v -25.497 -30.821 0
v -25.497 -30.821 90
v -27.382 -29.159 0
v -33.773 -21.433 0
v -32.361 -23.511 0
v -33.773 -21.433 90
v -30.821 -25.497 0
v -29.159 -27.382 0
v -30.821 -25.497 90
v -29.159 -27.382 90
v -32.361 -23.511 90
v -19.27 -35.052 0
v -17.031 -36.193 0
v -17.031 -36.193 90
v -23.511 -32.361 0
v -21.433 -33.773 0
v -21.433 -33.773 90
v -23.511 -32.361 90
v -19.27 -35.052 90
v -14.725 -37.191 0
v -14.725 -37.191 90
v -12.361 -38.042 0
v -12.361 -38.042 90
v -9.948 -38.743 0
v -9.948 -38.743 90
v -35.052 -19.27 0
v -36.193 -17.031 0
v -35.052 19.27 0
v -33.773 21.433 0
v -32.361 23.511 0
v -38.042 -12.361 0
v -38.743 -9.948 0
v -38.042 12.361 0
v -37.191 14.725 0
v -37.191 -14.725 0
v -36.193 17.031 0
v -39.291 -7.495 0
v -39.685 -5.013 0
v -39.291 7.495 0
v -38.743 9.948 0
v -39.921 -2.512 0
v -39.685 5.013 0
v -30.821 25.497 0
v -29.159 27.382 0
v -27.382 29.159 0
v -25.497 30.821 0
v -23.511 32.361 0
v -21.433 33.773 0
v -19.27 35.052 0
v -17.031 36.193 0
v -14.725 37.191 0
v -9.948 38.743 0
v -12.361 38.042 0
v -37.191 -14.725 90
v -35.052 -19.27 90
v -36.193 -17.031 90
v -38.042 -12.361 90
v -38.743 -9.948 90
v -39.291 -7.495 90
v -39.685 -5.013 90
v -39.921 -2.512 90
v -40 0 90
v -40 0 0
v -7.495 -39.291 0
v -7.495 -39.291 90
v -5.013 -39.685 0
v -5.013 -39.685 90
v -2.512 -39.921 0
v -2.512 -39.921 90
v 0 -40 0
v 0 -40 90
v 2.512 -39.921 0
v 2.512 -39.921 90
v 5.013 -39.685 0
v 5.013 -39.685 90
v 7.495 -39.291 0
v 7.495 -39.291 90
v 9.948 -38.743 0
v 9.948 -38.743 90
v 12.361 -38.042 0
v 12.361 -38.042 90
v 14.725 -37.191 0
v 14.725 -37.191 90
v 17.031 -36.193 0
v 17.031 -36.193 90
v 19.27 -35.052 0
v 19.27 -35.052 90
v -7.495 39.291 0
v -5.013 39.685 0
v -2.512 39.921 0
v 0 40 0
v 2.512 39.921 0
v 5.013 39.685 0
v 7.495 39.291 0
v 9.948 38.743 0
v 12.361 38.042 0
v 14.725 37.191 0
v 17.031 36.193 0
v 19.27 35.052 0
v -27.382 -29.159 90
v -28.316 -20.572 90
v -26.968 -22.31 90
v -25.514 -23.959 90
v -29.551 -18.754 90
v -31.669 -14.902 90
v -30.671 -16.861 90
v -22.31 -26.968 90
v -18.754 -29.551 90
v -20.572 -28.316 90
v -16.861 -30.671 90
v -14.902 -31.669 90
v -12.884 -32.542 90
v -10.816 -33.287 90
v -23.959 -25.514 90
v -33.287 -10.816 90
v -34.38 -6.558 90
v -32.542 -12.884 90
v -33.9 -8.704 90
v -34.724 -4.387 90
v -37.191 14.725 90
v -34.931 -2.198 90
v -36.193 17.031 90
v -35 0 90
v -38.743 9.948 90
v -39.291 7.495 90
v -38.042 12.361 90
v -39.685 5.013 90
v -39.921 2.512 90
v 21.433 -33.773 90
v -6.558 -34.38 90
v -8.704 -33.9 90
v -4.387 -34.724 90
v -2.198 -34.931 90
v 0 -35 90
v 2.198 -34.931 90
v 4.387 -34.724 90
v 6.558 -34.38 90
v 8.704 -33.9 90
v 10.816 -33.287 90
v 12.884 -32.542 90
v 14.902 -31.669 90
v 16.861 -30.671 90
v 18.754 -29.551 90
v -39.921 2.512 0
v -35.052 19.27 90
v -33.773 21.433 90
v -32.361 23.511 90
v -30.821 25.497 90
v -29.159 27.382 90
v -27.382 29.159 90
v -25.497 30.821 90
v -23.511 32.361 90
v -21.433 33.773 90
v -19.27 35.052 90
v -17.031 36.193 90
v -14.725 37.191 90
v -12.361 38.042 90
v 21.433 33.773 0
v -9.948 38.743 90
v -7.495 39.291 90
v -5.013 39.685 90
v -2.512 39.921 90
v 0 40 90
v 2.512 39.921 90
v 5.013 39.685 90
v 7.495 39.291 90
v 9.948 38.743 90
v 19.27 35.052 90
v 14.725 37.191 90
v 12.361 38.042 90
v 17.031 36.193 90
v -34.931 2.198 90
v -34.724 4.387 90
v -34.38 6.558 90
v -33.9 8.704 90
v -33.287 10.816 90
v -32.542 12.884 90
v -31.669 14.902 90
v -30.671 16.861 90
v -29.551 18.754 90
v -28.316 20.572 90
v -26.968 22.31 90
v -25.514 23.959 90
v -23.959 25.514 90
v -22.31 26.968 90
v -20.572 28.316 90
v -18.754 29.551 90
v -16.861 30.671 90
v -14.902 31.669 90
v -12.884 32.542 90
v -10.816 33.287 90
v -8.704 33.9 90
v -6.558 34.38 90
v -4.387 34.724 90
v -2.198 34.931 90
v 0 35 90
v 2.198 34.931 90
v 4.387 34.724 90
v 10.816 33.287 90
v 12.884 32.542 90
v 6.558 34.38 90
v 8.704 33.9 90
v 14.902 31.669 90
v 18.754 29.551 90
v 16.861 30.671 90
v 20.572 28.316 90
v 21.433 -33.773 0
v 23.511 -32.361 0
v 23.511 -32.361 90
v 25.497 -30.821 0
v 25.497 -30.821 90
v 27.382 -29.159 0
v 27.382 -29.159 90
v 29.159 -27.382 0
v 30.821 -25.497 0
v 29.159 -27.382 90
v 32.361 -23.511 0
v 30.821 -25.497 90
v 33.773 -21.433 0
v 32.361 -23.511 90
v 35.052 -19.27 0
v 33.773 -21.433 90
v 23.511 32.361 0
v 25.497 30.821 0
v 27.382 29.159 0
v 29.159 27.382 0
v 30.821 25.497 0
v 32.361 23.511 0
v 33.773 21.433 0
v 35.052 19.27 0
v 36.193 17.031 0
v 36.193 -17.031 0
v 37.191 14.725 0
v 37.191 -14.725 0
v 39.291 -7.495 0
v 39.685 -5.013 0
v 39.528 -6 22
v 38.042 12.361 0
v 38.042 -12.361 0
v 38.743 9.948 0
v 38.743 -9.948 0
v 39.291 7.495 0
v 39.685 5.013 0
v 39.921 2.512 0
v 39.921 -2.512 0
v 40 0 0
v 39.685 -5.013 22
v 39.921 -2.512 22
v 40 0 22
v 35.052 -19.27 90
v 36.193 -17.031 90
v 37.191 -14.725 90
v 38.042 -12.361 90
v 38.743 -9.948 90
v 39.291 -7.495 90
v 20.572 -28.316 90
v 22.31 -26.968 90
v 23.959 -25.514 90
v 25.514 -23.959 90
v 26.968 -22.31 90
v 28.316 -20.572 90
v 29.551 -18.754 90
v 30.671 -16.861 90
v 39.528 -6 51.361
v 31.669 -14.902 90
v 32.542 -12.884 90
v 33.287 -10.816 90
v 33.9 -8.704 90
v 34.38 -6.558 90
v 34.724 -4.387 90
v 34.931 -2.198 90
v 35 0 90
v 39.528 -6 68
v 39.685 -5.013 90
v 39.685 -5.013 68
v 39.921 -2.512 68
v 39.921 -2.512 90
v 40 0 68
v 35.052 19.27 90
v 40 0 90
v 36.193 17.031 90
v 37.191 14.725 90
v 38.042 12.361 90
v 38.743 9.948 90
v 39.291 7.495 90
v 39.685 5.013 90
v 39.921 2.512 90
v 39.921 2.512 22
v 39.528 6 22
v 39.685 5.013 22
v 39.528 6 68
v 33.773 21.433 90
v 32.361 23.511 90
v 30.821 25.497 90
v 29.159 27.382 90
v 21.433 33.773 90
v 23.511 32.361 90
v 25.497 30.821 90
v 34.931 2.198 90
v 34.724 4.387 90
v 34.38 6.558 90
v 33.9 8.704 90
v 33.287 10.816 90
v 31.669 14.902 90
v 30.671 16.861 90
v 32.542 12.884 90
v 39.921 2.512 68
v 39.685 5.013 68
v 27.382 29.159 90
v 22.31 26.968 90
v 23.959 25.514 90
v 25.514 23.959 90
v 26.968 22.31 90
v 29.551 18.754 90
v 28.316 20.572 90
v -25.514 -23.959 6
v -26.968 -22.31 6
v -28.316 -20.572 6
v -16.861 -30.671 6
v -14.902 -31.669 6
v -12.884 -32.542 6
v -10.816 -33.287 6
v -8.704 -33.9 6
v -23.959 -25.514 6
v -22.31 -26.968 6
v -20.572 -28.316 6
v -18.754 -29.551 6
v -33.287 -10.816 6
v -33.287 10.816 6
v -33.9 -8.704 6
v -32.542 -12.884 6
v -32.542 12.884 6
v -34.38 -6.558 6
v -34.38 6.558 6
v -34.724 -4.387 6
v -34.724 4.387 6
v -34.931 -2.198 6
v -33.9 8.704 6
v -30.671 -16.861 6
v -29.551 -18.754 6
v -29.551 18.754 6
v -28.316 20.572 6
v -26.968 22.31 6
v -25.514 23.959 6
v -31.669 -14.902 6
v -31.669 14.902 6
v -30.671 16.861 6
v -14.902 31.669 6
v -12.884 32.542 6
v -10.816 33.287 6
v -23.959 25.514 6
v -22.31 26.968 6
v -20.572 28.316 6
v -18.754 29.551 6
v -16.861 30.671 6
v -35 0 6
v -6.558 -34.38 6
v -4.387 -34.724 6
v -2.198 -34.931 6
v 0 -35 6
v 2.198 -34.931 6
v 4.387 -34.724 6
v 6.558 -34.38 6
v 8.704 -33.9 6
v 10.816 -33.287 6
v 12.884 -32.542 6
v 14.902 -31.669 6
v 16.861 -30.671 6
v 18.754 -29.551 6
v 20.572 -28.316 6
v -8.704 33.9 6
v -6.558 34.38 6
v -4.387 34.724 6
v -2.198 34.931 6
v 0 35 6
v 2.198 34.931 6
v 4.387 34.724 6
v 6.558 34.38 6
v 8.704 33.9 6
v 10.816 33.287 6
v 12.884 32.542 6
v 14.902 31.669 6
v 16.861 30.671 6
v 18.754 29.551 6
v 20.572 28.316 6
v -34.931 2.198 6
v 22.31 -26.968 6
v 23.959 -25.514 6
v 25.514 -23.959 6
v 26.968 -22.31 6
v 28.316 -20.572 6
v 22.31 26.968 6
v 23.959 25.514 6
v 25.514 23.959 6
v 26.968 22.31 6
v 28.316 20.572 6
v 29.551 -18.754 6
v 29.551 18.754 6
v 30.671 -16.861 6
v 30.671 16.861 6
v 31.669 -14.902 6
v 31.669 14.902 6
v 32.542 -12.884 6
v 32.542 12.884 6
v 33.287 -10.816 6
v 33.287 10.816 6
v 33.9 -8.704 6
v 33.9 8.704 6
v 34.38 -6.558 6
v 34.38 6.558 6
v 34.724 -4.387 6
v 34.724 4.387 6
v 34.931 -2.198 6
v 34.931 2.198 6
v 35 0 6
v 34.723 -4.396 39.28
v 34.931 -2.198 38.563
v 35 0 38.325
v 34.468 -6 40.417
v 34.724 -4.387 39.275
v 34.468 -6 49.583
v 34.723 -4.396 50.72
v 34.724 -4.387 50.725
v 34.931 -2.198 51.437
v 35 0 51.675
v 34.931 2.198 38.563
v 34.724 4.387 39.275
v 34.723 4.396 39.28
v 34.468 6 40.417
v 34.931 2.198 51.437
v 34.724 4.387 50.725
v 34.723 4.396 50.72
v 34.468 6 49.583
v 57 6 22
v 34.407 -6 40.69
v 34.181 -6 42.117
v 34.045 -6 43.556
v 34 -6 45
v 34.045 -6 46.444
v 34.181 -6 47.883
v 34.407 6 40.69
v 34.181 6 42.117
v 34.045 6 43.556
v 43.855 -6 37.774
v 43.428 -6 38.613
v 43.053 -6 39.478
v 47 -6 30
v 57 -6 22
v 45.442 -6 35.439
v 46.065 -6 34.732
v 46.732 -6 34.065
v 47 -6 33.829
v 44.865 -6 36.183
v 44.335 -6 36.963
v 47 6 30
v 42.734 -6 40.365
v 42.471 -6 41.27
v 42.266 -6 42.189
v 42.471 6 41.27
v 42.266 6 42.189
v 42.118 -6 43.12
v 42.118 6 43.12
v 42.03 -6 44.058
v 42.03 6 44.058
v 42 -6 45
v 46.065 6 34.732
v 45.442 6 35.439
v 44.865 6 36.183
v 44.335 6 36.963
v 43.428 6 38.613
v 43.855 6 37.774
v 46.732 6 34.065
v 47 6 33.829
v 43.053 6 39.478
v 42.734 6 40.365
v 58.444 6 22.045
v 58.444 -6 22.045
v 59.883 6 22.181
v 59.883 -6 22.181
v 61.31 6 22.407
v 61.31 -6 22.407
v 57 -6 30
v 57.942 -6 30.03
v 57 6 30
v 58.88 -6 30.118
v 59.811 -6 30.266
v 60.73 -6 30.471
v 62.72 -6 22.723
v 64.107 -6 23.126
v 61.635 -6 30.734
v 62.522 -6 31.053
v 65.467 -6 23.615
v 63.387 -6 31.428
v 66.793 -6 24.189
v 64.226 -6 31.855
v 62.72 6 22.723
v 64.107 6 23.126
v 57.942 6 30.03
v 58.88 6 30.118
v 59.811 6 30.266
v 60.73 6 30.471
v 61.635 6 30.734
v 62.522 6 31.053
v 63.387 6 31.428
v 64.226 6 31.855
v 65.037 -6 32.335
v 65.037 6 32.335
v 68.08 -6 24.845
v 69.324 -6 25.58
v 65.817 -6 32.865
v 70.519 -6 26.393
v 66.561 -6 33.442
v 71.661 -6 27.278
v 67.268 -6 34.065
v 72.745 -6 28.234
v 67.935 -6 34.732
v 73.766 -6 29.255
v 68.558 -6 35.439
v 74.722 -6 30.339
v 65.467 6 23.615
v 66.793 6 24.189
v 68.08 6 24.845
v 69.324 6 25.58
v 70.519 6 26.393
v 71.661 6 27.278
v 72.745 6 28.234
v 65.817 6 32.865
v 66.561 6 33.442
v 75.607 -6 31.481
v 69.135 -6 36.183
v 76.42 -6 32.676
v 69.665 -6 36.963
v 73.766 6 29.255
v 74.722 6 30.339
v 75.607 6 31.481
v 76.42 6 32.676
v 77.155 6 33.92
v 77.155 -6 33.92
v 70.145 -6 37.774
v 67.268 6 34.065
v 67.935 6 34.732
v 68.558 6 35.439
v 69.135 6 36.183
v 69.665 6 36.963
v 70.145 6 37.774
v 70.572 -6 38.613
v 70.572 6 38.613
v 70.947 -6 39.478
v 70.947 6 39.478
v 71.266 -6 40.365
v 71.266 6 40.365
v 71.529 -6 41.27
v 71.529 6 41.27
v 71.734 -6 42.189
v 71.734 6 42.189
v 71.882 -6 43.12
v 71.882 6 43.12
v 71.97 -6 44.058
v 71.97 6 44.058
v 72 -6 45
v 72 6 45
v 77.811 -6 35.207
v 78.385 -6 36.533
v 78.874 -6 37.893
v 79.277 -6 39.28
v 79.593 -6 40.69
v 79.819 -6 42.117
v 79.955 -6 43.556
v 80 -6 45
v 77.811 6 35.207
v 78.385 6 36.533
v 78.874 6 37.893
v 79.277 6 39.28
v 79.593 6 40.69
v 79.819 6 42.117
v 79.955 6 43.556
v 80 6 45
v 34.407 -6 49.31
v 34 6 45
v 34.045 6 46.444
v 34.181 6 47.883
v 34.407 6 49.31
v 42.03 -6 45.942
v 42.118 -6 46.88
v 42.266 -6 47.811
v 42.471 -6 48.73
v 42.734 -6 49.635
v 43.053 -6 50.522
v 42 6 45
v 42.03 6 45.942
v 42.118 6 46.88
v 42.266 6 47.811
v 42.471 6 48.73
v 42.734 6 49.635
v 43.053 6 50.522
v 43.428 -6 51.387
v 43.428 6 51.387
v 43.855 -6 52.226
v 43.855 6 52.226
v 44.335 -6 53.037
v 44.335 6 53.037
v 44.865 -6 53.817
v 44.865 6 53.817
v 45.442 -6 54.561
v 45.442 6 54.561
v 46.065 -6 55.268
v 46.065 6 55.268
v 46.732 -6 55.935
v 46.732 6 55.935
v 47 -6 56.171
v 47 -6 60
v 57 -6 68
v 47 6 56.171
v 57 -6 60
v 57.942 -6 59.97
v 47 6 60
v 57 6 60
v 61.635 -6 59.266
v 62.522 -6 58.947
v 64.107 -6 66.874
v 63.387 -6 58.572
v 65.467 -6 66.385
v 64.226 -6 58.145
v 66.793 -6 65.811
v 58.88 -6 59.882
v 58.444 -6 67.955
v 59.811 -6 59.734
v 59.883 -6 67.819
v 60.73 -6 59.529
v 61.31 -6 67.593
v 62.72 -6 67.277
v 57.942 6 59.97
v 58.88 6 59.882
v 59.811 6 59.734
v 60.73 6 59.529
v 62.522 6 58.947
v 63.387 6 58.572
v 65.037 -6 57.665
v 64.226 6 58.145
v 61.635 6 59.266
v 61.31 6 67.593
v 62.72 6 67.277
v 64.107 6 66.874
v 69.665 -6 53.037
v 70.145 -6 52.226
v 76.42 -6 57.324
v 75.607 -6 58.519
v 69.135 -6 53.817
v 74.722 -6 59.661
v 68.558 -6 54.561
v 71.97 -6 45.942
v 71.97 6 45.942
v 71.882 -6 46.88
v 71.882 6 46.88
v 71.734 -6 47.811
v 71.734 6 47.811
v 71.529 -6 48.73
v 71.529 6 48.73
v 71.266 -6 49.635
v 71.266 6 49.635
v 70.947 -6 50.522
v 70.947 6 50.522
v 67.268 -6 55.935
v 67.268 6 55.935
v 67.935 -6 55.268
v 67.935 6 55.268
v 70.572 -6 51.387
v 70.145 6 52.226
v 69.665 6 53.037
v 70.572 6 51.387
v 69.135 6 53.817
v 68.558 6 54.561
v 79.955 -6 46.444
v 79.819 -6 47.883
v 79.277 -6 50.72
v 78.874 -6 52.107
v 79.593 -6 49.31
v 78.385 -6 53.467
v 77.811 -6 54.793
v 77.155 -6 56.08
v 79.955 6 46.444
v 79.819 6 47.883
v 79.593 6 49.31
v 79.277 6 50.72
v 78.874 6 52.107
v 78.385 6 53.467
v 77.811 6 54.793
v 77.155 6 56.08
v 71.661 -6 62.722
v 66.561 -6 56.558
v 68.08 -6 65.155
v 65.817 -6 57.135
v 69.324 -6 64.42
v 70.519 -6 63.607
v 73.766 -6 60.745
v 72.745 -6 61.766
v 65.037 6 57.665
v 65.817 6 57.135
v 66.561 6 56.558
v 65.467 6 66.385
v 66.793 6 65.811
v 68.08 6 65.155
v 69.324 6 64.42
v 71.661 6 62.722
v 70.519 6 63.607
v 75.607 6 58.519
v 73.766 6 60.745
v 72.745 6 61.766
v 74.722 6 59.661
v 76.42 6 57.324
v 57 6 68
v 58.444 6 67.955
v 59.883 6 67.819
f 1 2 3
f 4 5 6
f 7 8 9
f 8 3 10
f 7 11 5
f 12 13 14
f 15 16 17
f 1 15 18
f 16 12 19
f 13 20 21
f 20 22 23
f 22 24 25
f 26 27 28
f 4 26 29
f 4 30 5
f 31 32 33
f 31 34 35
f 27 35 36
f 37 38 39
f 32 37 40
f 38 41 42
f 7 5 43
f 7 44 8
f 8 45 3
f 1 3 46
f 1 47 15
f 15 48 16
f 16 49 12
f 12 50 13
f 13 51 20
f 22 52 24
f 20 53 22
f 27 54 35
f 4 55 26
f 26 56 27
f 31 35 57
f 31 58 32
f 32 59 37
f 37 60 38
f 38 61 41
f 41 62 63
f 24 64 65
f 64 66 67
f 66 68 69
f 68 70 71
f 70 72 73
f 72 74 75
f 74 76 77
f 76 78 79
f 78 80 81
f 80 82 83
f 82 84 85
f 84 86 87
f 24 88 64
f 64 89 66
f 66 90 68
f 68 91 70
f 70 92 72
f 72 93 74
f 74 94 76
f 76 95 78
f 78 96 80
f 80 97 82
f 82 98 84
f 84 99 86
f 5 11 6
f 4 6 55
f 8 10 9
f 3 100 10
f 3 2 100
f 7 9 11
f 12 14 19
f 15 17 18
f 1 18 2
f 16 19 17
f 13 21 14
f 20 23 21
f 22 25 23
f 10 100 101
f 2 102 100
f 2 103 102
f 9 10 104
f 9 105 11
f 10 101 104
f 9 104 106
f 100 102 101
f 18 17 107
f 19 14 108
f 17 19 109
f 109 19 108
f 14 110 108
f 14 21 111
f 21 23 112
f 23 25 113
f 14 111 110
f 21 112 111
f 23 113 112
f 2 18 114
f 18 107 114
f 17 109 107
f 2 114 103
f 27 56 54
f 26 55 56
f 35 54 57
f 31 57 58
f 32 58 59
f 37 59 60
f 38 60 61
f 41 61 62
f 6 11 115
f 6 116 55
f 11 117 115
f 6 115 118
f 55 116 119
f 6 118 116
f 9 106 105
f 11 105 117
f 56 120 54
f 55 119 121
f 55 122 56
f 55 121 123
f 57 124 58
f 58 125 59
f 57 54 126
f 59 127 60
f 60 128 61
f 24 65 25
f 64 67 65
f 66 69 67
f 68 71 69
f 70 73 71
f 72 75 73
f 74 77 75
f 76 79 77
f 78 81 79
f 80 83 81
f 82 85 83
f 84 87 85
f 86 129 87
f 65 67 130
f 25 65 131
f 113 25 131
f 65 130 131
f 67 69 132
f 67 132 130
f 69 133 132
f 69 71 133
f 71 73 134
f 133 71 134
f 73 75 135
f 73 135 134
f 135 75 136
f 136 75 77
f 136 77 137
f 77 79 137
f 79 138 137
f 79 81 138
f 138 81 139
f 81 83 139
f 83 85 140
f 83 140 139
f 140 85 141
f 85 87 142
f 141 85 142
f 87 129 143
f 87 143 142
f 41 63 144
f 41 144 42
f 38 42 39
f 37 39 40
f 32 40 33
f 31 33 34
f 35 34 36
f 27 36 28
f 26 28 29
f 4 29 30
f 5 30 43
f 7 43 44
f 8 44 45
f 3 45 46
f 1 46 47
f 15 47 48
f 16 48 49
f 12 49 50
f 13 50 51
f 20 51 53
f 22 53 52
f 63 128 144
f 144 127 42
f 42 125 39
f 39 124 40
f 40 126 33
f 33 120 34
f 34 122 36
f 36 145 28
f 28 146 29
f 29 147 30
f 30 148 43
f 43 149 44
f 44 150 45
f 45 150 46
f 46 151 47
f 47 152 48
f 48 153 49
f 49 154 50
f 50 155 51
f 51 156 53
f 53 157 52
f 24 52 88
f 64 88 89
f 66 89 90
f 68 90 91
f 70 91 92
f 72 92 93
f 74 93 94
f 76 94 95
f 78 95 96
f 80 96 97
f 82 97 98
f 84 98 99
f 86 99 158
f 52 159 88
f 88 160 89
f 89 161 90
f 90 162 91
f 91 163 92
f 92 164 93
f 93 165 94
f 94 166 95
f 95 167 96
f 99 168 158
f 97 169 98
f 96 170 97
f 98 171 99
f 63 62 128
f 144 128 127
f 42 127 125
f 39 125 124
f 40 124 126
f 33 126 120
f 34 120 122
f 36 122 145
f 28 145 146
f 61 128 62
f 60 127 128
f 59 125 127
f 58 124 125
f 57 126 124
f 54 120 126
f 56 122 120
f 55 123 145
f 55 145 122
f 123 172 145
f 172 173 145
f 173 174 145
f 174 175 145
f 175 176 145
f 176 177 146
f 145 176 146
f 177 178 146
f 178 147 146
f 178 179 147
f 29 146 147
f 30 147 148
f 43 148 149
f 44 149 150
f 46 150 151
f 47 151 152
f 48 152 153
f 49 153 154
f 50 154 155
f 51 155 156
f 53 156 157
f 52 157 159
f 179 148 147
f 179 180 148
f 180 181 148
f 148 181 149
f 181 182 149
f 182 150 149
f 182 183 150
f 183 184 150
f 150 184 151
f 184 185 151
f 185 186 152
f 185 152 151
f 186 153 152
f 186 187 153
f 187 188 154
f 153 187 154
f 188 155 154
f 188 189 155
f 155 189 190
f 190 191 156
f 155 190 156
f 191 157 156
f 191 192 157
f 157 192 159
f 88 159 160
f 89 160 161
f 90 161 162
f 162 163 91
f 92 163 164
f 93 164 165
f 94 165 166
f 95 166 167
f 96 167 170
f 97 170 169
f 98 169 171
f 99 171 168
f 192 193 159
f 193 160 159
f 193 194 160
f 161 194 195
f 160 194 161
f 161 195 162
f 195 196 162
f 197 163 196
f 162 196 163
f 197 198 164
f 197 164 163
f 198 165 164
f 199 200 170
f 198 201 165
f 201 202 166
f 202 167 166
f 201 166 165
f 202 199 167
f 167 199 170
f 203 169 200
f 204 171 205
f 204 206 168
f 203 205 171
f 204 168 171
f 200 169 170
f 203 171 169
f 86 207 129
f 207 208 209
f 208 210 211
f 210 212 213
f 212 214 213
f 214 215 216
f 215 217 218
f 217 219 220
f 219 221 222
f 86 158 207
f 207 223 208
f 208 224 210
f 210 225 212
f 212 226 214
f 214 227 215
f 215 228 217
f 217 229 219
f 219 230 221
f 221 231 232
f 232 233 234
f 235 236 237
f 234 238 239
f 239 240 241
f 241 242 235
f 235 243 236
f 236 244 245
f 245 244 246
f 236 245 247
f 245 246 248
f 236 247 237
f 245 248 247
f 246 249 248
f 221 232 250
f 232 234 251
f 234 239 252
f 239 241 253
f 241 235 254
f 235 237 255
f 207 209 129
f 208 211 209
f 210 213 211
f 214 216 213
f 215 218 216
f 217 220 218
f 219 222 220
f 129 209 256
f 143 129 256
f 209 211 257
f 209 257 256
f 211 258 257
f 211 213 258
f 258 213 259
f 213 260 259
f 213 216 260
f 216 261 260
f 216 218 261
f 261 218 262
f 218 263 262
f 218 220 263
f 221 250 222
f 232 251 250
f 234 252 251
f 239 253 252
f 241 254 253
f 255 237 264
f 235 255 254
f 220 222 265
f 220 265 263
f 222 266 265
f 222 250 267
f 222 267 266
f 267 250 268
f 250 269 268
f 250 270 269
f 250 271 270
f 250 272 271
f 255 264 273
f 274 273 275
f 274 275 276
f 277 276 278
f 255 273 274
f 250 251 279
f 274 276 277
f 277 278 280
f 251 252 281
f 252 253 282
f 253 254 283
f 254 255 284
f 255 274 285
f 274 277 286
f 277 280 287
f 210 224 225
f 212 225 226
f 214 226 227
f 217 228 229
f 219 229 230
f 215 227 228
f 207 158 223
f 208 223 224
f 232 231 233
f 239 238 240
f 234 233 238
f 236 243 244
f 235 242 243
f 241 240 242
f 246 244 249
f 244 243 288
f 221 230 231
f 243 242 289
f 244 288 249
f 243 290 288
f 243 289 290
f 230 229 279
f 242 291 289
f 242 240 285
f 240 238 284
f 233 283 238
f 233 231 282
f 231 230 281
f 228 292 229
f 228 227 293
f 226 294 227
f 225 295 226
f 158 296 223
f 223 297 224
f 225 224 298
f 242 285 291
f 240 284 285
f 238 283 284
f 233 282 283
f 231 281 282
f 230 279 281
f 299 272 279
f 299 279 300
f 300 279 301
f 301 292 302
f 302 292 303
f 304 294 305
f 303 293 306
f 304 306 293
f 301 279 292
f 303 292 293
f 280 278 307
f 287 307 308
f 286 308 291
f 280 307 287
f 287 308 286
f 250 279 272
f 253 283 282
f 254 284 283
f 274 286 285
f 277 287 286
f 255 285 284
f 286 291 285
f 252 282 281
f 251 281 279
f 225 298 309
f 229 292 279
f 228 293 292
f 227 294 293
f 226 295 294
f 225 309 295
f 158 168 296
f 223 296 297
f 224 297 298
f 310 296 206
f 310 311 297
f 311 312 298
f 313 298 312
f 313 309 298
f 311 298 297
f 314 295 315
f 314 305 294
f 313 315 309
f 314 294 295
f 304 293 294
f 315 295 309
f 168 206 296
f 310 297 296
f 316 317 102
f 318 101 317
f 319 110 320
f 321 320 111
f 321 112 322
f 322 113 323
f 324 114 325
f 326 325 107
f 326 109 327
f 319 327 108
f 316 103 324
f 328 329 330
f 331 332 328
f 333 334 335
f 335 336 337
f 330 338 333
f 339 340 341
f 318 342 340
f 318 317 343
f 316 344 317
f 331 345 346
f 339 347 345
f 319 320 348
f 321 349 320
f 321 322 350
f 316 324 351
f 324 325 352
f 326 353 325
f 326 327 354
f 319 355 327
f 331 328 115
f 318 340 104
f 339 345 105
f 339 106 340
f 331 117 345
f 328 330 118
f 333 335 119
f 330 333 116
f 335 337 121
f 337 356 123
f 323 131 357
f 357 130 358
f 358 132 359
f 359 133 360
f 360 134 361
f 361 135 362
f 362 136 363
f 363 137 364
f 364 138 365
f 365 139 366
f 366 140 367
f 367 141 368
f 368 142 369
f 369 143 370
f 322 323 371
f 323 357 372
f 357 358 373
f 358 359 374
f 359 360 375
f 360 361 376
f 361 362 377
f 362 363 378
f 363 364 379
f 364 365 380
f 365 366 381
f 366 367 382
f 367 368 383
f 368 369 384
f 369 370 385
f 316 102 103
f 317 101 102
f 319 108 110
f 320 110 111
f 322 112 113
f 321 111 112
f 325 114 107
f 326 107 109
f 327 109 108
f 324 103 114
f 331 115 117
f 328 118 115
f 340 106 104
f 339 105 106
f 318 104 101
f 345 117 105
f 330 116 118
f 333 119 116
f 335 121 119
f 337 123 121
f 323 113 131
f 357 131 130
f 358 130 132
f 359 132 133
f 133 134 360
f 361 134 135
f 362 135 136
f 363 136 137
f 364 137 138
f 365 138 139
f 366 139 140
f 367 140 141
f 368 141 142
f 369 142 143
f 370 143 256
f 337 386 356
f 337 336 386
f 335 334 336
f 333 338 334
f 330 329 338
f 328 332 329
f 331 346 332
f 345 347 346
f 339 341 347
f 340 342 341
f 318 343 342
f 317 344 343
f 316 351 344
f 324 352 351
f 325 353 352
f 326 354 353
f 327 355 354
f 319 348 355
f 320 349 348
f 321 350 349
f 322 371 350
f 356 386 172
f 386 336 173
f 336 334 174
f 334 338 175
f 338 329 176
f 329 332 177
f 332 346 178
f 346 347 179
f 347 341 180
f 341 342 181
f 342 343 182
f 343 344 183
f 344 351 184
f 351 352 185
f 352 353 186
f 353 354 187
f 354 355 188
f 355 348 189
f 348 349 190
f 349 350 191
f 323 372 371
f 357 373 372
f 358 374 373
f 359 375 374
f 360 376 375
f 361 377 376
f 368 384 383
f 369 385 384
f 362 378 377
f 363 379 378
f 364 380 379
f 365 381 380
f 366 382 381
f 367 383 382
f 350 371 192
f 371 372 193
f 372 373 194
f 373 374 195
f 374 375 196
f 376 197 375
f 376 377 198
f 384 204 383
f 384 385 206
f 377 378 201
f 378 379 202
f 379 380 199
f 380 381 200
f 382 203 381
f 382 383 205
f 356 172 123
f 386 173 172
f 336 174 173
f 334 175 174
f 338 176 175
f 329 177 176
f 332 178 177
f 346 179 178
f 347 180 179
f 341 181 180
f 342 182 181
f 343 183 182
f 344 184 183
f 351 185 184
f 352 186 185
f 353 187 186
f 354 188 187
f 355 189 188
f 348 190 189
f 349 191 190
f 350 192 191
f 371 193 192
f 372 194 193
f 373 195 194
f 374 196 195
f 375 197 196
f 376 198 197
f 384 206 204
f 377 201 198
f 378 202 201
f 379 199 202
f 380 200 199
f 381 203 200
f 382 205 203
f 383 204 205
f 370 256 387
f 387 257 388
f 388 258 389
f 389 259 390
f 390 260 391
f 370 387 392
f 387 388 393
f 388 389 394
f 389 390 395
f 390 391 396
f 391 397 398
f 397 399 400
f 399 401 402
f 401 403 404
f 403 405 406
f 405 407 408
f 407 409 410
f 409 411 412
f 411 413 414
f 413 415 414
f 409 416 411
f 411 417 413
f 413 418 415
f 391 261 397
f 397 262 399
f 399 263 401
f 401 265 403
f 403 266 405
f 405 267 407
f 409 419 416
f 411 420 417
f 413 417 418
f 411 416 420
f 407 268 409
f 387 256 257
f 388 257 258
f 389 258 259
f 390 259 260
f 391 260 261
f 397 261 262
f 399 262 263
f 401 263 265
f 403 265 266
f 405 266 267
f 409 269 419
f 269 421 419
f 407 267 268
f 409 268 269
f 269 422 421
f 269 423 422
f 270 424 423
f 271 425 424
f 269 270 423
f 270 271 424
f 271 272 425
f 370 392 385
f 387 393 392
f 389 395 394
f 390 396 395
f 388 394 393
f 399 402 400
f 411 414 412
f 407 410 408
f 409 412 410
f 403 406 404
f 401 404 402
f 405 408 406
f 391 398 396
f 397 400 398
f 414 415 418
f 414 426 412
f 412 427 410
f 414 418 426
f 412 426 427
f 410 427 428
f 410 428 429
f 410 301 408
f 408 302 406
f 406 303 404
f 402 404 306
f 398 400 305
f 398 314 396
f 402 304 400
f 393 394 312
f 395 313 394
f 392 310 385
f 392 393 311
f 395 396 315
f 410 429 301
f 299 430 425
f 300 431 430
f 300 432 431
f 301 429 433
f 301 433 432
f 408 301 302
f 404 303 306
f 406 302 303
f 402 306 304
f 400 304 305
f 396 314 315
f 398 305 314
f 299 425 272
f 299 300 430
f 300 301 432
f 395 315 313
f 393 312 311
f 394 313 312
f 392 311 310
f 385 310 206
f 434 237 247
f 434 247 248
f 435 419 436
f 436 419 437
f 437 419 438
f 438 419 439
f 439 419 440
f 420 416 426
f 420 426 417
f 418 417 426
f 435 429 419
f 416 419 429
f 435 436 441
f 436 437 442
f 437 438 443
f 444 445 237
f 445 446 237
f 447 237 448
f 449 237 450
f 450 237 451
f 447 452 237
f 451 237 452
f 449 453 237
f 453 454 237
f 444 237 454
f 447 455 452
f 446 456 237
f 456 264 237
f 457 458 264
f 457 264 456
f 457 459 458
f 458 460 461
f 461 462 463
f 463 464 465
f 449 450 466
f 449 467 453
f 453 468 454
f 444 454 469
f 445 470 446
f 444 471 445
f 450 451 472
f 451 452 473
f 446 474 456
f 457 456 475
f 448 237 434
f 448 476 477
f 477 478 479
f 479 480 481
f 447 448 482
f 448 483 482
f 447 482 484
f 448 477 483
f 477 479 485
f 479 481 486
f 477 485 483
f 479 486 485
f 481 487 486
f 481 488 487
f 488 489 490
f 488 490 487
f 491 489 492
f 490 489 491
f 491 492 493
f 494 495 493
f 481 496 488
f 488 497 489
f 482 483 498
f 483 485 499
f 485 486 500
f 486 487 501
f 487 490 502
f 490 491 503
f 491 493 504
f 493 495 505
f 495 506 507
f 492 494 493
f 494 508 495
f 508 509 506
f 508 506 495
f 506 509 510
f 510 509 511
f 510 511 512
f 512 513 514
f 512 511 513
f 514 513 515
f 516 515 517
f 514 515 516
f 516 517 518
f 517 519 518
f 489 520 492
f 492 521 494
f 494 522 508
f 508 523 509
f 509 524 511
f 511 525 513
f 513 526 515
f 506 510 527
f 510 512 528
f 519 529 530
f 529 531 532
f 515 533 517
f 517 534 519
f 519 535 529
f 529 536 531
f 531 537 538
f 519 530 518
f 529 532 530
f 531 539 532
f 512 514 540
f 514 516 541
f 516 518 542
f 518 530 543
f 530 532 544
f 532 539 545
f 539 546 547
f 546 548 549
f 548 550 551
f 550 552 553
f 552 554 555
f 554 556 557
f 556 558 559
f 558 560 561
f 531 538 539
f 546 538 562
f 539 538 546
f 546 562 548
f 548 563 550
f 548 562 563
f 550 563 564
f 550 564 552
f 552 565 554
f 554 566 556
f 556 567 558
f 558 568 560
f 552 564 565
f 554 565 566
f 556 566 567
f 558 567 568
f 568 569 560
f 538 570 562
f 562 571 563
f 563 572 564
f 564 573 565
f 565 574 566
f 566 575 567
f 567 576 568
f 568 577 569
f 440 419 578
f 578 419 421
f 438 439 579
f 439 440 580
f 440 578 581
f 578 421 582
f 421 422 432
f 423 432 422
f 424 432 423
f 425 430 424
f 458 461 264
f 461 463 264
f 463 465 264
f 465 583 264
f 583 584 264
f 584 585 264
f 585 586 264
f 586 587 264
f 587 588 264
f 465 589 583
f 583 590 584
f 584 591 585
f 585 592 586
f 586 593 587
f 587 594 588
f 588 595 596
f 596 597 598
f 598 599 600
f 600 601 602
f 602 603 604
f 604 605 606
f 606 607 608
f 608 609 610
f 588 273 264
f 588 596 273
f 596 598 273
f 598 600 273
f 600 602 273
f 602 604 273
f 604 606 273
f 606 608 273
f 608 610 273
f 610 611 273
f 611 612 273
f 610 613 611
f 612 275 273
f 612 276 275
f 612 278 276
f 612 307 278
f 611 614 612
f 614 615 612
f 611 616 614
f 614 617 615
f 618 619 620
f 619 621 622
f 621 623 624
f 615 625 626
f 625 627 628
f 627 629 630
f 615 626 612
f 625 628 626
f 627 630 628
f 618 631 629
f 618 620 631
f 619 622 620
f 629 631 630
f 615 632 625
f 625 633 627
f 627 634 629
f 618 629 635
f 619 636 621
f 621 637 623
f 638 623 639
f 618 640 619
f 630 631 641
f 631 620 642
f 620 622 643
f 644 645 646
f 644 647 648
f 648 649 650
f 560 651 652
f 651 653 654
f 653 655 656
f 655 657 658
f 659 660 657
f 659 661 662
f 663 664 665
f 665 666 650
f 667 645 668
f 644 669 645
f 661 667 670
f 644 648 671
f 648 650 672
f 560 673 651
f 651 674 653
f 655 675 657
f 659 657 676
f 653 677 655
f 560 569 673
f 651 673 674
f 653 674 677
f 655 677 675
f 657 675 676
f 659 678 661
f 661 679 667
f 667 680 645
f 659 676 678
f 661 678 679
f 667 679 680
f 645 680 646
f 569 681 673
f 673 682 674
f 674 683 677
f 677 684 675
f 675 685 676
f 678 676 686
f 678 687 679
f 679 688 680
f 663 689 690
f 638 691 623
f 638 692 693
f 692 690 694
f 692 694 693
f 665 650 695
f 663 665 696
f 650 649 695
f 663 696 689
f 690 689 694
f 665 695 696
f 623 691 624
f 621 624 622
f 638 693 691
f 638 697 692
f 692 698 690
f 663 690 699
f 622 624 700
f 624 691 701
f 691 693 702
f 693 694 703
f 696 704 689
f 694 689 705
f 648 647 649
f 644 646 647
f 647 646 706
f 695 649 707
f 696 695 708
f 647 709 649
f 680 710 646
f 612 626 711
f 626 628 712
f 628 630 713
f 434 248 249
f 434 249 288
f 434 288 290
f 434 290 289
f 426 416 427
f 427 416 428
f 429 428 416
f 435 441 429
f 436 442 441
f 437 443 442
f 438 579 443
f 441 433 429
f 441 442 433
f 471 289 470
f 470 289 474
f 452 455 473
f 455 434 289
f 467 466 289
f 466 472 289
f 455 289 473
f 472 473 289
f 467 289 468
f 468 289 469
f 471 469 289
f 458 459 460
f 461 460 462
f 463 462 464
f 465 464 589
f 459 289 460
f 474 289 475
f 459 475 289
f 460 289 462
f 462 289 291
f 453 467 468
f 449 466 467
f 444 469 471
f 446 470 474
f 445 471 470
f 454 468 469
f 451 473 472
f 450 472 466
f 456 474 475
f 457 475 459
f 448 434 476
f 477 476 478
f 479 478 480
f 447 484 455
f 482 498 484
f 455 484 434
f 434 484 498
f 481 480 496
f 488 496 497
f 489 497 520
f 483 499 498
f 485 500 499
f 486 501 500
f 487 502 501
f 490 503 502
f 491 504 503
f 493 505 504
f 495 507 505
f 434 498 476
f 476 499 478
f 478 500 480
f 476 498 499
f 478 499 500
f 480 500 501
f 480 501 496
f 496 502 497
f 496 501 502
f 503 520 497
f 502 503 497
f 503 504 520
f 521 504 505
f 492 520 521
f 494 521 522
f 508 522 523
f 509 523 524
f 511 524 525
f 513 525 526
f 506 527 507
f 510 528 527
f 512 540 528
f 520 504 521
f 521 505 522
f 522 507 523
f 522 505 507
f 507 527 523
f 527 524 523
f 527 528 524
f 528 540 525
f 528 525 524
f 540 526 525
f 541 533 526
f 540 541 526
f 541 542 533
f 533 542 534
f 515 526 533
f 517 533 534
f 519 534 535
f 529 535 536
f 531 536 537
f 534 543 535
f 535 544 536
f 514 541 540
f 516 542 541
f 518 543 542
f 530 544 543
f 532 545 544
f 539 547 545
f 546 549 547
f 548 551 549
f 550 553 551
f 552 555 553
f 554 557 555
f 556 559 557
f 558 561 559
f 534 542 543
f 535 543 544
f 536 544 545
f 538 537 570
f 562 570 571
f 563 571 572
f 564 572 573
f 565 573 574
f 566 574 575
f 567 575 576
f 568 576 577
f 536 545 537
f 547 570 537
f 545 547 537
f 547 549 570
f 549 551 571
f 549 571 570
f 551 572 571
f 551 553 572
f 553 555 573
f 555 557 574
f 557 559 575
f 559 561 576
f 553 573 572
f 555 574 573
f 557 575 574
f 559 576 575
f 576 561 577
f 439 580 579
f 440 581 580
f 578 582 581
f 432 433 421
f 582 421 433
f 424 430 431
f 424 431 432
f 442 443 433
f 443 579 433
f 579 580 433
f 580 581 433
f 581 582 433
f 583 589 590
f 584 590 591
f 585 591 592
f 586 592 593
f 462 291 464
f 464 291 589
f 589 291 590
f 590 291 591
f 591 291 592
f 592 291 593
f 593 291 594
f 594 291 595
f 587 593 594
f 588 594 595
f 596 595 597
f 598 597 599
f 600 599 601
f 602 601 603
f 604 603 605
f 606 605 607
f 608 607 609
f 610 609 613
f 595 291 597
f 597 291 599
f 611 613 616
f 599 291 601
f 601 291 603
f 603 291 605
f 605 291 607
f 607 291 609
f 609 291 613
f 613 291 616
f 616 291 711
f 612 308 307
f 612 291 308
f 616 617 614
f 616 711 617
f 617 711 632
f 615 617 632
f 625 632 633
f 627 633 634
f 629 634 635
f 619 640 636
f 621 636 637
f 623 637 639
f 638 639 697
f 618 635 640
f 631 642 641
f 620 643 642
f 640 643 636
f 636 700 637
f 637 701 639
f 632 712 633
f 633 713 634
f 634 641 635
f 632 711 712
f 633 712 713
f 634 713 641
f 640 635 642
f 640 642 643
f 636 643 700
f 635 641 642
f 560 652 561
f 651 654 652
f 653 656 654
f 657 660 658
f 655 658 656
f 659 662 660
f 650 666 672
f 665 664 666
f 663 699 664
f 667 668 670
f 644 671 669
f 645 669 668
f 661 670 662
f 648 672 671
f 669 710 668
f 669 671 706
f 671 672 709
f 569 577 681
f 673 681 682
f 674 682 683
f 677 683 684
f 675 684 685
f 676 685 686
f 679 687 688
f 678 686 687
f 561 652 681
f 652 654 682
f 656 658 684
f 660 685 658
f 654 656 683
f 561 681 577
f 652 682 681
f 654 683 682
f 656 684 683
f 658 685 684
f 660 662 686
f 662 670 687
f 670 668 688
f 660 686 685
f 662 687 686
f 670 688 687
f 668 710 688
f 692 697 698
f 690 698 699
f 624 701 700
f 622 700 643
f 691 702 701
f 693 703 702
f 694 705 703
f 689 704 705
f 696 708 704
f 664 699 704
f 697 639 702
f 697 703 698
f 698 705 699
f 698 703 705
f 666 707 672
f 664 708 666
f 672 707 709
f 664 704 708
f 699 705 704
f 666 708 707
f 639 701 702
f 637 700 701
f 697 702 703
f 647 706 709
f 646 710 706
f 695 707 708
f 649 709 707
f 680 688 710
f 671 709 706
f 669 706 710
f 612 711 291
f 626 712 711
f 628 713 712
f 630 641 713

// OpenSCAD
$fn = 100; // 滑らかな曲線にするための解像度

// --- 本体パラメータ ---
mug_outer_d = 80;
mug_inner_d = 70;
mug_h = 90;
mug_bottom_thickness = 6;

// --- 取手パラメータ ---
handle_inner_h = 30;        // 指を入れる空間の高さ (Z軸方向)
handle_inner_w = 25;        // 指を入れる空間の幅 (X軸方向、本体からの距離)
handle_thickness = 8;       // 取手の肉厚 (XZ平面上)
handle_y_width = 12;        // 取手の奥行き (Y軸方向の太さ)

// 本体と取手を結合
union() {
    // 1. マグ本体
    difference() {
        // 外側の円筒
        cylinder(h = mug_h, d = mug_outer_d);
        
        // 内側をくり抜くための円筒
        // 底面の厚みを残すために Z 方向にずらす
        translate([0, 0, mug_bottom_thickness])
            cylinder(h = mug_h + 1, d = mug_inner_d); // 確実に貫通させるため少し高くする
    }

    // 2. 取手
    // 2DのD形状を押し出す方式で作成。これにより、画像のようなテーパー形状を修正します。
    
    // --- 取手寸法の計算 ---
    // 内側D形状の寸法
    handle_inner_radius = handle_inner_h / 2;
    handle_inner_rect_w = handle_inner_w - handle_inner_radius;
    
    // 外側D形状の寸法
    handle_outer_h = handle_inner_h + 2 * handle_thickness;
    handle_outer_radius = handle_outer_h / 2;
    handle_outer_rect_w = handle_inner_rect_w + handle_thickness;

    // --- 取手の配置 ---
    // Z方向：マグカップの高さ方向中央に配置
    handle_z_pos = (mug_h - handle_outer_h) / 2;
    // X方向：+X軸側面に配置し、確実に接続するために1mmめり込ませる
    handle_x_pos = mug_outer_d / 2 - 1;

    translate([handle_x_pos, 0, handle_z_pos]) {
        // 取手のD形状はXZ平面上にあるため、XY平面で2D形状を作成し90度回転させる
        rotate([90, 0, 0]) {
            // Y軸方向に押し出して厚みを付ける
            linear_extrude(height = handle_y_width, center = true) {
                difference() {
                    // --- 外側のソリッドD形状 ---
                    union() {
                        // Dの直線部分 (2DのXY平面上で、Xが幅、Yが高さに対応)
                        square([handle_outer_rect_w, handle_outer_h]);
                        // Dの曲線部分
                        translate([handle_outer_rect_w, handle_outer_radius, 0])
                            circle(r = handle_outer_radius);
                    }
                    
                    // --- 内側のくり抜きD形状 ---
                    // 外側の形状からのオフセットとして配置
                    translate([handle_thickness, handle_thickness, 0]) {
                        union() {
                            // Dの直線部分
                            square([handle_inner_rect_w, handle_inner_h]);
                            // Dの曲線部分
                            translate([handle_inner_rect_w, handle_inner_radius, 0])
                                circle(r = handle_inner_radius);
                        }
                    }
                }
            }
        }
    }
}
